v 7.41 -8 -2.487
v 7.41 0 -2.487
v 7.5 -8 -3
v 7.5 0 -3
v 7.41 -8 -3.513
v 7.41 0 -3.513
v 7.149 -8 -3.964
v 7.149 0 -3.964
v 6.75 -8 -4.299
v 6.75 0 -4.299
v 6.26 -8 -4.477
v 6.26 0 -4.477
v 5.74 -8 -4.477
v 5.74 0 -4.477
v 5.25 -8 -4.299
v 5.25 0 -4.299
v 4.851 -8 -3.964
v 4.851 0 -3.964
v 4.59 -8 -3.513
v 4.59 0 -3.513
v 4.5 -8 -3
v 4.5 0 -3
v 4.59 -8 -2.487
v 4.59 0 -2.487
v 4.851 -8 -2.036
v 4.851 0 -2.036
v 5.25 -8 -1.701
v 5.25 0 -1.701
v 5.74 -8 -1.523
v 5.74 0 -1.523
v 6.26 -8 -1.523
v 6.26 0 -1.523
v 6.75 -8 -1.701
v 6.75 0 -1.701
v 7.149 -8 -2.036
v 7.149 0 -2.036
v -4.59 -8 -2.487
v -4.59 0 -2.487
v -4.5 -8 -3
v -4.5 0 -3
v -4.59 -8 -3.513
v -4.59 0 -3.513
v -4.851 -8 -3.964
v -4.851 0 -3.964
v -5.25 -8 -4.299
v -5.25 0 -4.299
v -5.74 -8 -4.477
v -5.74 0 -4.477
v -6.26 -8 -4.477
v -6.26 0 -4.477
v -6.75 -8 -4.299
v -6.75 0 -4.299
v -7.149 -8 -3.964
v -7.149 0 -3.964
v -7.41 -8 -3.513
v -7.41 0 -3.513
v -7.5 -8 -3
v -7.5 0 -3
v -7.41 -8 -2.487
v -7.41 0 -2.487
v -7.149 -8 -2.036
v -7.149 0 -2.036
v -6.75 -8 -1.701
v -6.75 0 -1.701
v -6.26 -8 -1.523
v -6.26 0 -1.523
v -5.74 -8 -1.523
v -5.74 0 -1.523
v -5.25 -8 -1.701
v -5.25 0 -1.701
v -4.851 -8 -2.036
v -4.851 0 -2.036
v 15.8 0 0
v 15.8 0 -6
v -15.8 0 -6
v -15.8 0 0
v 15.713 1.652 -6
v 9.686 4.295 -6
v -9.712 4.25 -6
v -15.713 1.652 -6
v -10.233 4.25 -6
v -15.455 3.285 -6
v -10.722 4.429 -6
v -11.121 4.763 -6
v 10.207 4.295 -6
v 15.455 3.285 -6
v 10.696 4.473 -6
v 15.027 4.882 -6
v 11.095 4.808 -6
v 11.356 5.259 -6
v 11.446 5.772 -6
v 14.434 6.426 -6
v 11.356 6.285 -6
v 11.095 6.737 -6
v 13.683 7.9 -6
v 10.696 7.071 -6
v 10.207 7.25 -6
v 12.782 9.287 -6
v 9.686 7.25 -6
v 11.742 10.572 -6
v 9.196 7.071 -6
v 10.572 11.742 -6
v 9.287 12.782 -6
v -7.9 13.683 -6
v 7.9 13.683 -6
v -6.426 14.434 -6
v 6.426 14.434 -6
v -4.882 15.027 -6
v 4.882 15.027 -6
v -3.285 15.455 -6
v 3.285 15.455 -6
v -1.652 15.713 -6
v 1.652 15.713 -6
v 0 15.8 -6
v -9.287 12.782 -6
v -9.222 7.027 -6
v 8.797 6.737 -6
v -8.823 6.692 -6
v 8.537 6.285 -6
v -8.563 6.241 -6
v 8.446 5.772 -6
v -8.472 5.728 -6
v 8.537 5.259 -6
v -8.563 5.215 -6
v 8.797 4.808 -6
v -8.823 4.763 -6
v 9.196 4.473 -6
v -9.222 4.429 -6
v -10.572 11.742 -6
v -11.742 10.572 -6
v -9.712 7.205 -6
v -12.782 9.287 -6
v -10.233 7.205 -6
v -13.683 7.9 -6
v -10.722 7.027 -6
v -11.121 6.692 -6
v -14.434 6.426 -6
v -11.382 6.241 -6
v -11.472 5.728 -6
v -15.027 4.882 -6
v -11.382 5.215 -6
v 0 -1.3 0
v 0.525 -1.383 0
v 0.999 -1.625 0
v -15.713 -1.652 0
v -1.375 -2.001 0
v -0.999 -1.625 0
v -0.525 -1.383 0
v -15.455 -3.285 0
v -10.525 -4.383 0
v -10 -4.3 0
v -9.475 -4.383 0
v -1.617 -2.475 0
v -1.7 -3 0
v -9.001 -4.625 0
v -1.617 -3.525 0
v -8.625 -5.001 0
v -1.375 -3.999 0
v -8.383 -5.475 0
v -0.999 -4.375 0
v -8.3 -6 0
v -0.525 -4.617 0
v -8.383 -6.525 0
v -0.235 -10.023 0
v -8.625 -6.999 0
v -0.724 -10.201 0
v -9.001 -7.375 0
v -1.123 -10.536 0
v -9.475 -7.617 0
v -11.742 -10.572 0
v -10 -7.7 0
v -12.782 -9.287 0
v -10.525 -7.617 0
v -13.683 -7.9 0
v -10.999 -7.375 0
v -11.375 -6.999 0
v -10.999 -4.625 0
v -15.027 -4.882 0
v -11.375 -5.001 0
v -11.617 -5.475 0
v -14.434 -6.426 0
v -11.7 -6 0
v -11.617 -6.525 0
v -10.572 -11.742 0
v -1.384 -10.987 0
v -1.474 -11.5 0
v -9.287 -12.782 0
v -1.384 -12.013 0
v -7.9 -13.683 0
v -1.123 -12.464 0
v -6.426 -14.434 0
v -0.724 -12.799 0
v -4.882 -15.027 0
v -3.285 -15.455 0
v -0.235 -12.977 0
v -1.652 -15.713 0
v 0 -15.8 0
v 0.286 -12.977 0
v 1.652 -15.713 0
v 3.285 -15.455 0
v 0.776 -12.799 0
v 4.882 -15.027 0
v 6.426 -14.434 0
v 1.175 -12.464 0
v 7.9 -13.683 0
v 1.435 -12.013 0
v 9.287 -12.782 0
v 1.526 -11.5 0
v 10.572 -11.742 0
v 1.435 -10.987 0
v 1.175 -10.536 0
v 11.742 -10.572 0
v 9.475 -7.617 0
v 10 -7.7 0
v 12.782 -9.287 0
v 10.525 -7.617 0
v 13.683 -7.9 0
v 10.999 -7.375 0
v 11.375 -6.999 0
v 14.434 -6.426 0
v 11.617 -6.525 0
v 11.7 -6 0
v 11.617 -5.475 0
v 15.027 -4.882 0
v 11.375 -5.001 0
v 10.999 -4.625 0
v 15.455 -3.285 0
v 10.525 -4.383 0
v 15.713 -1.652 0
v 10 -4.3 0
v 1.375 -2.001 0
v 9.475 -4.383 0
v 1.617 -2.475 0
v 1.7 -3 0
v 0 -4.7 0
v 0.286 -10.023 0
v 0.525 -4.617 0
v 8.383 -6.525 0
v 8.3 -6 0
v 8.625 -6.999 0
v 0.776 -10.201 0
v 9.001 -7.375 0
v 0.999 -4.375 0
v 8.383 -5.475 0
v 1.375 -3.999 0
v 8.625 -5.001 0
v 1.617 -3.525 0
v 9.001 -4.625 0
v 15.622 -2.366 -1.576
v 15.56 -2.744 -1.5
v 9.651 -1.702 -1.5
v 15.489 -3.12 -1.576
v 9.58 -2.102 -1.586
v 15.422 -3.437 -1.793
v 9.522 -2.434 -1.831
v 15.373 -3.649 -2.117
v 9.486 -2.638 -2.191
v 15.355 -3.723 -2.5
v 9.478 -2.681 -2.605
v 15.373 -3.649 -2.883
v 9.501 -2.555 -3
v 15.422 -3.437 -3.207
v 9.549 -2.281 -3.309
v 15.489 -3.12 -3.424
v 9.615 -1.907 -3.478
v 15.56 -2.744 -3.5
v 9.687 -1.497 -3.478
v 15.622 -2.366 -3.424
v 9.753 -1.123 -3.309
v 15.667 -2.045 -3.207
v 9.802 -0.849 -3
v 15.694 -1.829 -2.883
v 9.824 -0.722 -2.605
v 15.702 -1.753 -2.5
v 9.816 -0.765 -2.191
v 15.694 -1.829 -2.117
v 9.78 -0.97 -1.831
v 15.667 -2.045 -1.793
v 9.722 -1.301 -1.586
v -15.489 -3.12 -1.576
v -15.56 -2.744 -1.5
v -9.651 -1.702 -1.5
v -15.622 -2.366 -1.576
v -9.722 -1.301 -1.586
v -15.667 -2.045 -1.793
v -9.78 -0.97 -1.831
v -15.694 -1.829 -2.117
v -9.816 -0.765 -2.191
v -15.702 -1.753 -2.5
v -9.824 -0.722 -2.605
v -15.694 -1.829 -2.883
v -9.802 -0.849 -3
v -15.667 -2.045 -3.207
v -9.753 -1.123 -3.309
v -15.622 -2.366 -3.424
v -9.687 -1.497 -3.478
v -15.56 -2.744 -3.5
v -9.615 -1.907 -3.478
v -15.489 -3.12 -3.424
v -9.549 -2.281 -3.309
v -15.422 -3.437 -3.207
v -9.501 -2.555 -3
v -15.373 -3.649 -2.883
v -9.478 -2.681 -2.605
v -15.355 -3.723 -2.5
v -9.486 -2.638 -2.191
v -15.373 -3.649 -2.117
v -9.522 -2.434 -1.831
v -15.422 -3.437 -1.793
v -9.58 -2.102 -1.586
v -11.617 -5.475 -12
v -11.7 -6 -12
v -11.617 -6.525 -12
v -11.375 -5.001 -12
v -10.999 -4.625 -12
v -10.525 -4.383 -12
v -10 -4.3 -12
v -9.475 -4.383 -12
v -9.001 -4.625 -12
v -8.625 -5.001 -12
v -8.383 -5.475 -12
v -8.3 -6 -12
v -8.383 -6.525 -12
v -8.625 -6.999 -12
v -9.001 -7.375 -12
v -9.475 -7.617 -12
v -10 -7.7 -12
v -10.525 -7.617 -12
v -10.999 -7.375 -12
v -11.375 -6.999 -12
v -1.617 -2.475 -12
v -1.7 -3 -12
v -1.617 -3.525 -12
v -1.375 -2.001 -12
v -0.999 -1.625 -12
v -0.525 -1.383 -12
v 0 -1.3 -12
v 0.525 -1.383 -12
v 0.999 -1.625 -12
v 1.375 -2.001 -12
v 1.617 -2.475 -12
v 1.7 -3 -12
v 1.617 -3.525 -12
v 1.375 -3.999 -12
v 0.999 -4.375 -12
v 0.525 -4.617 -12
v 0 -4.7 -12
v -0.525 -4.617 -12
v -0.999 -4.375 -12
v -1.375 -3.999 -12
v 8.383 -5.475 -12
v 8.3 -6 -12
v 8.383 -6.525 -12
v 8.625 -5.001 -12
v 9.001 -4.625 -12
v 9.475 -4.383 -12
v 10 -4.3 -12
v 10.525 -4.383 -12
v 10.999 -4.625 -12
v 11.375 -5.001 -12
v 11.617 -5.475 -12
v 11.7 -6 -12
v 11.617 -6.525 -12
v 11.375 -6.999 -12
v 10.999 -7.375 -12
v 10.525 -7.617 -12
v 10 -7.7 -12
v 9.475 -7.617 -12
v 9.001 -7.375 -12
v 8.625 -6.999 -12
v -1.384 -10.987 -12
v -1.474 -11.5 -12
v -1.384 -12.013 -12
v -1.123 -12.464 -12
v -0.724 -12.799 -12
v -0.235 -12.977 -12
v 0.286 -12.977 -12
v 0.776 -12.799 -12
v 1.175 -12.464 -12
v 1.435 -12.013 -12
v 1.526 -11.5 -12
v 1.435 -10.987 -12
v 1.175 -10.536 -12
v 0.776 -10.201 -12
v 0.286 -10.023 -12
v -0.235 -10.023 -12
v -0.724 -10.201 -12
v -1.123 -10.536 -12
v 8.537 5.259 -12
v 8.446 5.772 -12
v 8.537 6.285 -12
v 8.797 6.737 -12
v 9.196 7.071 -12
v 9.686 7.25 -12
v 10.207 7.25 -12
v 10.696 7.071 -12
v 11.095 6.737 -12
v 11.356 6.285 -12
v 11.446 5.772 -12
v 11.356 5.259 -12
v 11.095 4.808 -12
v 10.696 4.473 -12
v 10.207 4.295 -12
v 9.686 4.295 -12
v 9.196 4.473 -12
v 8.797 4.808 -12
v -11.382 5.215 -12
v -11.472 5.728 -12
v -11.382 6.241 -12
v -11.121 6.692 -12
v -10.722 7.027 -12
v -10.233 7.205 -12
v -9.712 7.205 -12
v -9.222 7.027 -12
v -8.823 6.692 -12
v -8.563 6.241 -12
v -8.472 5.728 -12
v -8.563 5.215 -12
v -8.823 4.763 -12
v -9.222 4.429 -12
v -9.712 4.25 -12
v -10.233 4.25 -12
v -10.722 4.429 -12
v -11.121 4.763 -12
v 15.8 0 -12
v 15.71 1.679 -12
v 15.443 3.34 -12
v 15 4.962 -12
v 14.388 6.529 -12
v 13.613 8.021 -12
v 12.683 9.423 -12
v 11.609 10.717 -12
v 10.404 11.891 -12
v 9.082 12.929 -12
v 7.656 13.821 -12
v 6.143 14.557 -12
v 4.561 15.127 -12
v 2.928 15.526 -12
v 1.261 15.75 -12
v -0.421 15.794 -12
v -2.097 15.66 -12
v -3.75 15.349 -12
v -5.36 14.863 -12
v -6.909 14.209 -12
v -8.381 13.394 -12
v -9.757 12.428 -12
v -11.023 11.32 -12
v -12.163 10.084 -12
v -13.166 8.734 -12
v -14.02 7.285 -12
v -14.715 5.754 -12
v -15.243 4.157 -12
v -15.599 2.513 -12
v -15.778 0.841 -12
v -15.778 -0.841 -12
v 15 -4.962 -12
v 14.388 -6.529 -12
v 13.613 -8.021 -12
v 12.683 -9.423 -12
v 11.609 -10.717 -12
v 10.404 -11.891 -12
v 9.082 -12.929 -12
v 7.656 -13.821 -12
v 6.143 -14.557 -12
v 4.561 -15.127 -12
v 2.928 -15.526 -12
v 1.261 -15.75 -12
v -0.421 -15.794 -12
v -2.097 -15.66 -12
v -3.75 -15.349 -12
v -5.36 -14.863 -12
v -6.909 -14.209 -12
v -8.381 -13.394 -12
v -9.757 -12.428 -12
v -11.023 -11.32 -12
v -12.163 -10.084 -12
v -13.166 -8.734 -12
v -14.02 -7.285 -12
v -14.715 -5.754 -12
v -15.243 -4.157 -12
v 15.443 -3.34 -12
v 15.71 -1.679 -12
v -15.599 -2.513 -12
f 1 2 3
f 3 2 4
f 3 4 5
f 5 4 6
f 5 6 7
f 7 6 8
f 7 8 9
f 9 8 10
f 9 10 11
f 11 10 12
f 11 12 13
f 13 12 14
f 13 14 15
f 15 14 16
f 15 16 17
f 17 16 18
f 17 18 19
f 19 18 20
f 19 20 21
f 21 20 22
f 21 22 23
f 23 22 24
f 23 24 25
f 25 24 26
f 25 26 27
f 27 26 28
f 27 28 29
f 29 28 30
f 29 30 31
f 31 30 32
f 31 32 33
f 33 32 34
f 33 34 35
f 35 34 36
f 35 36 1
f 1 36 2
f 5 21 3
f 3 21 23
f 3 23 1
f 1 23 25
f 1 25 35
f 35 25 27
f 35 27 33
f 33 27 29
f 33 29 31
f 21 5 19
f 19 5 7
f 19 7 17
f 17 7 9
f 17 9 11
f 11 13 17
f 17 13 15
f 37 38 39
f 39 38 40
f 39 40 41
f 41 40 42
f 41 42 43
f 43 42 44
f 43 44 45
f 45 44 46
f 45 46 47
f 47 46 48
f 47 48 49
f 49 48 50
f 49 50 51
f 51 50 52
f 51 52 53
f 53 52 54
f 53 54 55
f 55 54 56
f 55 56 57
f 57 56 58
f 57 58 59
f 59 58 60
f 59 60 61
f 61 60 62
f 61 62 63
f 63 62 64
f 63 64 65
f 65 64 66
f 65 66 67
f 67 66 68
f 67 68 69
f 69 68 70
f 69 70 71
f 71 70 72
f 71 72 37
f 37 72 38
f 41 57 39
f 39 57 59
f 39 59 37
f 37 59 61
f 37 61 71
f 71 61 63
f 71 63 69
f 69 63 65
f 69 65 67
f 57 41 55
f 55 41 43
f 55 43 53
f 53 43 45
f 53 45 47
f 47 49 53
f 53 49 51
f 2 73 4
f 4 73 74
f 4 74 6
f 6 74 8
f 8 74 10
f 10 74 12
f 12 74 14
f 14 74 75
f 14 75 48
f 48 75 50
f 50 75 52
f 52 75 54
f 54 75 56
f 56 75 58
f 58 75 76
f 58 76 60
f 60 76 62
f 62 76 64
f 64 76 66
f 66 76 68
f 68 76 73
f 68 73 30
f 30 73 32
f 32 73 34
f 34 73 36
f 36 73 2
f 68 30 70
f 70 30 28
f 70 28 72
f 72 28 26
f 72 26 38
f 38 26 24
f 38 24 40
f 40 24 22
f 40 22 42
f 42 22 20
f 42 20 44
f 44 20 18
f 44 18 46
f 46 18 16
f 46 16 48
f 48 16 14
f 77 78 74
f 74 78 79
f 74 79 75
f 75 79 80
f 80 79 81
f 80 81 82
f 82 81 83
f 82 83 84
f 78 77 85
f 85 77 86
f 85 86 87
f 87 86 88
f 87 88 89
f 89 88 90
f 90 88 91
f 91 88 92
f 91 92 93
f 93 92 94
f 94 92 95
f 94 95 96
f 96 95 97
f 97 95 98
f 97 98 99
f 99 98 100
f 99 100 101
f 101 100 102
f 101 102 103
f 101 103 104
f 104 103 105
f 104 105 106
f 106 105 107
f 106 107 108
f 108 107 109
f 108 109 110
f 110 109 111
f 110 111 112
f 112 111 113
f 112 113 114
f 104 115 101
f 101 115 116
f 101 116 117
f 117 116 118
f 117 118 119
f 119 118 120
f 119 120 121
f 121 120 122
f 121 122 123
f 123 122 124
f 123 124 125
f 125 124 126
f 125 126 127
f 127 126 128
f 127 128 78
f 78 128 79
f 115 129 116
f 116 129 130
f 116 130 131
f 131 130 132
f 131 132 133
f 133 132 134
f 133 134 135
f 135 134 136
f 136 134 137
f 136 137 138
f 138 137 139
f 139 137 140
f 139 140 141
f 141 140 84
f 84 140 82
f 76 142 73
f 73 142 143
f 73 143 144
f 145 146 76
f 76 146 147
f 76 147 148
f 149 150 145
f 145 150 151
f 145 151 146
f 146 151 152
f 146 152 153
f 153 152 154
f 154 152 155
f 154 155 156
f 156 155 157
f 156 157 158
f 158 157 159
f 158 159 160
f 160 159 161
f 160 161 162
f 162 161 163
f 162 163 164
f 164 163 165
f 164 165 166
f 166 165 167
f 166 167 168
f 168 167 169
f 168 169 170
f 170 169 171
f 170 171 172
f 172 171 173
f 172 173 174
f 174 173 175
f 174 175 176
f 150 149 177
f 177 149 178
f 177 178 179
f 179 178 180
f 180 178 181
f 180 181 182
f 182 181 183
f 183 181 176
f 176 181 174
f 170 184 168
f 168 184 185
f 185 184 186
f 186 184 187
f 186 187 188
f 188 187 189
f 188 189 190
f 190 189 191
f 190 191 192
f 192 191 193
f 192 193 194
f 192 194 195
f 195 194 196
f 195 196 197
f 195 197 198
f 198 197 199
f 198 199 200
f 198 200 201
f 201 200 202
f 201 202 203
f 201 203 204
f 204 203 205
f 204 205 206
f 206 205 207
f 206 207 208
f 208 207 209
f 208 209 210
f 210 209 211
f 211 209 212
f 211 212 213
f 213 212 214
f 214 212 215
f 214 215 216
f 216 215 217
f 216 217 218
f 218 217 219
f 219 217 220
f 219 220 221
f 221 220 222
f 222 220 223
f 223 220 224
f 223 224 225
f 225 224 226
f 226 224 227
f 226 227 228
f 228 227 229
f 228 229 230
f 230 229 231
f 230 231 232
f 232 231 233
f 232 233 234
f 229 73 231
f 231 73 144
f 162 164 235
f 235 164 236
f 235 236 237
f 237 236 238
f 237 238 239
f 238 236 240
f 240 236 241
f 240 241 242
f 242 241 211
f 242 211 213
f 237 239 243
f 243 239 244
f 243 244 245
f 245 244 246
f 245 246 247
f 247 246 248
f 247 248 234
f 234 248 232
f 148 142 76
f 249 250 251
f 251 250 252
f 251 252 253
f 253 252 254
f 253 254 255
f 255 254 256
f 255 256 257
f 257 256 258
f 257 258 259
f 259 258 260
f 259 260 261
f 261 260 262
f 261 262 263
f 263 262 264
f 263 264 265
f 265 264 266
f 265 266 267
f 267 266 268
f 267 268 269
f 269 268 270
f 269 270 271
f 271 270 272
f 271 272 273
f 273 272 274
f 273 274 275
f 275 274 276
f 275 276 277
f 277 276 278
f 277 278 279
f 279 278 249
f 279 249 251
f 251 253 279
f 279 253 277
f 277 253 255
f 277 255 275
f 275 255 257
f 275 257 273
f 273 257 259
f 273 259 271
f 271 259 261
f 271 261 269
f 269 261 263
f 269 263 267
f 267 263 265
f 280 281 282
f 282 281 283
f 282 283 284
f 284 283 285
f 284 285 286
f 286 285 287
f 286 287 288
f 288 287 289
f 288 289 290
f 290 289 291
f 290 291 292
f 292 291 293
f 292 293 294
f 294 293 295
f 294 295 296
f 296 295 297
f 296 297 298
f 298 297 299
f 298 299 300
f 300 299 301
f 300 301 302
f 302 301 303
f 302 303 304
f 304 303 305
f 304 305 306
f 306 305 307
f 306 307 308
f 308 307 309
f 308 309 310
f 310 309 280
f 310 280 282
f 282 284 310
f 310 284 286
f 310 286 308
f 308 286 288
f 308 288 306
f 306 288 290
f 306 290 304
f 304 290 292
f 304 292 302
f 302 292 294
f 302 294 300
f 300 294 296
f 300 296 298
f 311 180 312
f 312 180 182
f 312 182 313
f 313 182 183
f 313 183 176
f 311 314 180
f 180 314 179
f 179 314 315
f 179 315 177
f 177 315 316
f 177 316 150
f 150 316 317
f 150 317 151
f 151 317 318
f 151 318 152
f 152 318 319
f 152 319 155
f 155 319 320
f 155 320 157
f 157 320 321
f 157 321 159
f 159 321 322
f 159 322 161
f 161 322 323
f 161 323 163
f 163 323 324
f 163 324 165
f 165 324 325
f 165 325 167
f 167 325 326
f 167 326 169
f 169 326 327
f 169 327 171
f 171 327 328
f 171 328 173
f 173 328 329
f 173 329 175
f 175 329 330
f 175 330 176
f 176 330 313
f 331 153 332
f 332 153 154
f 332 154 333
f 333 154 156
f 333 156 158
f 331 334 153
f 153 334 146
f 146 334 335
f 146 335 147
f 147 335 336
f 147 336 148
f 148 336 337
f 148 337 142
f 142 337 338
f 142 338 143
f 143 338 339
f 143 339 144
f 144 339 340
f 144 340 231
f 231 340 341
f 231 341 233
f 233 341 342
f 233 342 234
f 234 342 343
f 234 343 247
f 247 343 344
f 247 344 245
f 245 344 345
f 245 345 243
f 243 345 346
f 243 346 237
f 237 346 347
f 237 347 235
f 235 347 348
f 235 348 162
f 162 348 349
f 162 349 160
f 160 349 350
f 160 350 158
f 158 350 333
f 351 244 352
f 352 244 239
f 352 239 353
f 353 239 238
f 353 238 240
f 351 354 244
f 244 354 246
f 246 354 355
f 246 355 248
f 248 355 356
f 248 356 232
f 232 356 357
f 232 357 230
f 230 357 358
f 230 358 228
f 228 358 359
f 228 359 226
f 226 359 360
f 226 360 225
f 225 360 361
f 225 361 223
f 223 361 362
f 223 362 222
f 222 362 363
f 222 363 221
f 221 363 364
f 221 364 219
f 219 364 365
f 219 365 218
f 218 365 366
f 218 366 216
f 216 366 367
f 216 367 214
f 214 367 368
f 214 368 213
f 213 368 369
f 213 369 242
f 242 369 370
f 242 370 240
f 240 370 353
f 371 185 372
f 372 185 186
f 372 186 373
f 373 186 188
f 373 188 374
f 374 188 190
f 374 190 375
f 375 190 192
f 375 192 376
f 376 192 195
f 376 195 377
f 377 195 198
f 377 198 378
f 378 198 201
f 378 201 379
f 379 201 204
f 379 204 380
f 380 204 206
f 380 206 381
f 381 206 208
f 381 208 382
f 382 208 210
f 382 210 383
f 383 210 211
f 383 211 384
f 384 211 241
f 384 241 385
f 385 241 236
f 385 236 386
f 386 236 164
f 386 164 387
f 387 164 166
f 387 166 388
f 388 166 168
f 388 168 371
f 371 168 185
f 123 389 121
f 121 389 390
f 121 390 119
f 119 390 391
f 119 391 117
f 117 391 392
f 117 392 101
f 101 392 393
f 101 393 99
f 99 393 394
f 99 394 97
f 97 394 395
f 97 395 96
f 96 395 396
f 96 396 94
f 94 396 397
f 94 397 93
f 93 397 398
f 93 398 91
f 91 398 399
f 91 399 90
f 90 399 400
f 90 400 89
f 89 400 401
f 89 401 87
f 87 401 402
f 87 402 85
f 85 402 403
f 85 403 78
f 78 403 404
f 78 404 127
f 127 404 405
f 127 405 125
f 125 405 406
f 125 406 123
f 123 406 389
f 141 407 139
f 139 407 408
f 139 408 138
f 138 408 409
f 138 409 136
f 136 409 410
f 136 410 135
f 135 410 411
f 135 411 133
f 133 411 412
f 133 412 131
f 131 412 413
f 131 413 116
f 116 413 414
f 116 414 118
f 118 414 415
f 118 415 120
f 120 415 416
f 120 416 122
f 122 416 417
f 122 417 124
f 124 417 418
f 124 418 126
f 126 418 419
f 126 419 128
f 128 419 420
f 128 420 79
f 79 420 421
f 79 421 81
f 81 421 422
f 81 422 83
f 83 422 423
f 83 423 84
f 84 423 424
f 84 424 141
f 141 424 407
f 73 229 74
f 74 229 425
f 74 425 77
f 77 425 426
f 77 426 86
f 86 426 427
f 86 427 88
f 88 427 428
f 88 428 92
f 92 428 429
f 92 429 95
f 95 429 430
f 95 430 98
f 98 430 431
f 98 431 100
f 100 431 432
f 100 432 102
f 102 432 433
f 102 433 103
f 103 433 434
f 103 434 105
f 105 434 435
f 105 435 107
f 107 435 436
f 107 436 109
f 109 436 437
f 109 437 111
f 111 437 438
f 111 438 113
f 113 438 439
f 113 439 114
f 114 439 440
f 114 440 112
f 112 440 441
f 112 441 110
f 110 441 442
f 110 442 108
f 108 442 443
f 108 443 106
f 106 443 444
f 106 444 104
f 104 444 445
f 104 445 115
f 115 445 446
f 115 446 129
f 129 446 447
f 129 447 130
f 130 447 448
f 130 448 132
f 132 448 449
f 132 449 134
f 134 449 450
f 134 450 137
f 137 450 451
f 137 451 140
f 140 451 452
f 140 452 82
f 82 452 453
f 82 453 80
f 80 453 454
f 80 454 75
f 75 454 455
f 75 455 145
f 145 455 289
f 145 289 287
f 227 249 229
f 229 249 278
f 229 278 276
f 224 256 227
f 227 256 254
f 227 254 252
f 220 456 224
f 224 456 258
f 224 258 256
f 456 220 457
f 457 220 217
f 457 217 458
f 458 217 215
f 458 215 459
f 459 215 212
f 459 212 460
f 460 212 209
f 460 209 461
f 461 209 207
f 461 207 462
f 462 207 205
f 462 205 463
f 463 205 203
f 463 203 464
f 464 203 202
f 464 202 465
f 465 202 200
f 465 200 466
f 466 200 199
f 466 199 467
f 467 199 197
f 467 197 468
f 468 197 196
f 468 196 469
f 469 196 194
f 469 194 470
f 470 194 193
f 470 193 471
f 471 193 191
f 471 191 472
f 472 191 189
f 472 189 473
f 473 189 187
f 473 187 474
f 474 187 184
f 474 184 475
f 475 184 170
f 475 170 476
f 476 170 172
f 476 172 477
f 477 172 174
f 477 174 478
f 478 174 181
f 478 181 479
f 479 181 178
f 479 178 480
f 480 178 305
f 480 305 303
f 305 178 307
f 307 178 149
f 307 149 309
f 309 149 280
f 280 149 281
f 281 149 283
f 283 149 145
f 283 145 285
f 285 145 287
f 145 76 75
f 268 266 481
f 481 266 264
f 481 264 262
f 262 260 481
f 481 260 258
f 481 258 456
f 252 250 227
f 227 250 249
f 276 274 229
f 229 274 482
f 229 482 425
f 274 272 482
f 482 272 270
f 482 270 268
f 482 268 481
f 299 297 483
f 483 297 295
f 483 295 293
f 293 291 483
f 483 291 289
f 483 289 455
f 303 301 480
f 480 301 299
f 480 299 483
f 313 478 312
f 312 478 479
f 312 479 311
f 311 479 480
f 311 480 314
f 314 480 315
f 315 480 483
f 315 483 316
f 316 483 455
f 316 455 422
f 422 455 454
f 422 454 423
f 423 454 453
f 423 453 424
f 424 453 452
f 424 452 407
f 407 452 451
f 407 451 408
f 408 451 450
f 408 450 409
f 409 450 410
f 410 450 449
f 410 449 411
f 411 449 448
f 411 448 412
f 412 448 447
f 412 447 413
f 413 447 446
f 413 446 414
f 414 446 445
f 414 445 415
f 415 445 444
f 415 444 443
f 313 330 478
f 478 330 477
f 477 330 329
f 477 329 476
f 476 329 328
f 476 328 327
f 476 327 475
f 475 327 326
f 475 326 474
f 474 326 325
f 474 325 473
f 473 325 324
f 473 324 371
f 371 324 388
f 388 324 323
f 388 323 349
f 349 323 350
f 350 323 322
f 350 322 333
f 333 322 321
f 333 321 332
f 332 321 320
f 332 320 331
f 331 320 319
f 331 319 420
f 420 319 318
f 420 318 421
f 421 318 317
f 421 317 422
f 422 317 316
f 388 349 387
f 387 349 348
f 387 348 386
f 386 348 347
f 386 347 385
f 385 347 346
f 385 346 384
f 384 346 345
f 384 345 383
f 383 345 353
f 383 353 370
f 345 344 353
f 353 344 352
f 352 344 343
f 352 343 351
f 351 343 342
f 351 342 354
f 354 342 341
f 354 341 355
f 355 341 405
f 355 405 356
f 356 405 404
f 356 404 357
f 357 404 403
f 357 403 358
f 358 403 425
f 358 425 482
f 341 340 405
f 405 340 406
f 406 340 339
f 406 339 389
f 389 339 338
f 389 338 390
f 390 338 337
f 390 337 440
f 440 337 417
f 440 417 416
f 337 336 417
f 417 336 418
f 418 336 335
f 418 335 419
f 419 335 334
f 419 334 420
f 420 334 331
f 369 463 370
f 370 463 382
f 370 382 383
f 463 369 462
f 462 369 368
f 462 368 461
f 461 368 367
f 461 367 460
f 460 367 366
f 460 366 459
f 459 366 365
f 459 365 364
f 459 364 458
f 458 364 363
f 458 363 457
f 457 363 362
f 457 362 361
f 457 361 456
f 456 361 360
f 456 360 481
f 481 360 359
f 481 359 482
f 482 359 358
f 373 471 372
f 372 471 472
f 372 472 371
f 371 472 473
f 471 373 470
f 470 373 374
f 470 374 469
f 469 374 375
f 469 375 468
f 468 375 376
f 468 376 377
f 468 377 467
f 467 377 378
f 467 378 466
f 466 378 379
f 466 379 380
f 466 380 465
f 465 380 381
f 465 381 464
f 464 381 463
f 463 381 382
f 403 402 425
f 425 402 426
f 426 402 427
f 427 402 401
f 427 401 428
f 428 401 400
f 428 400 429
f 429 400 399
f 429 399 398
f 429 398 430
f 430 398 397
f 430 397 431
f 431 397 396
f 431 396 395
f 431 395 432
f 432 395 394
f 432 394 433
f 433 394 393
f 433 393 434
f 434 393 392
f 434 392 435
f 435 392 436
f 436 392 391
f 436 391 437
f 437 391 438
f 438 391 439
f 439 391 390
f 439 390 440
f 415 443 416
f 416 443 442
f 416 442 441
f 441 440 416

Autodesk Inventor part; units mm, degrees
ref_plane "XZ Plane" through (0, 0, 0) normal (0, 1, 0) x (-1, 0, 0)
sketch "スケッチ2" plane through (0, 0, 0) normal (0, 0, 1) x (1, 0, 0)
  circle A0 centre (0, 0) radius 15.8
  dimension "d0" = 31.6
extrude "押し出し1" add sketch "スケッチ2" against normal blind 12
sketch "スケッチ4" plane through (0, 0, 0) normal (0, 0, 1) x (1, 0, 0)
  circle A0 centre (0.0258, -11.5) radius 1.5
  circle A1 centre (9.9464, 5.7723) radius 1.5
  circle A2 centre (-9.9722, 5.7277) radius 1.5
  point P0 (0, 0)
  dimension "d8" = 3
  dimension "d9" = 11.5
  dimension "d12" = 360
extrude "押し出し3" cut sketch "スケッチ4" against normal through all
sketch "スケッチ13" plane through (0, 0, 0) normal (0, 0, 1) x (1, 0, 0)
  circle A0 centre (-10, -6) radius 1.7
  circle A1 centre (10, -6) radius 1.7
  circle A2 centre (0, -3) radius 1.7
  line L0 (0, 0) -> (0, -19.4065)
  line L1 (0, 0) -> (20.4623, 0)
  point P0 (0, -4.7)
  point P1 (0, -1.3)
  dimension "d125" = 3.4
  dimension "d126" = 3.4
  dimension "d127" = 3.4
  dimension "d128" = 6
  dimension "d129" = 3
  dimension "d130" = 10
extrude "押し出し11" cut sketch "スケッチ13" against normal through all
ref_plane "作業平面6" through (0, 0, 0) normal (0.9848, -0.1736, 0) x (0, 0, 1)
ref_plane "作業平面7" through (0, 0, 0) normal (0.9848, 0.1736, 0) x (0, 0, 1)
ref_plane "作業平面8" through (15.56, -2.7436, 0) normal (0.9848, -0.1736, 0) x (0, 0, 1)
ref_plane "作業平面9" through (-15.56, -2.7436, 0) normal (0.9848, 0.1736, 0) x (0, 0, 1)
sketch "スケッチ15" plane through (15.56, -2.7436, 0) normal (0.9848, -0.1736, 0) x (0, 0, 1)
  circle A0 centre (-2.5, 0) radius 1
  point P0 (0, 0)
  dimension "d103" = 2
  dimension "d104" = 2.5
sketch "スケッチ16" plane through (-15.56, -2.7436, 0) normal (0.9848, 0.1736, 0) x (0, 0, 1)
  circle A0 centre (-2.5, 0) radius 1
  point P0 (0, 0)
  dimension "d105" = 2
  dimension "d106" = 2.5
extrude "押し出し12" cut sketch "スケッチ16" along normal blind 6
extrude "押し出し13" cut sketch "スケッチ15" against normal blind 6
thread "ねじ10" size "M2x0.4" class "6H" standard "ANSI Metric M Profile" full length
thread "ねじ11" size "M2x0.4" class "6H" standard "ANSI Metric M Profile" full length
sketch "スケッチ18" plane through (0, 0, 0) normal (0, 0, 1) x (1, 0, 0)
  line L0 (-18.9802, 17.2113) -> (19.0758, 17.2113)
  line L1 (19.0758, 17.2113) -> (19.0758, 0)
  line L2 (19.0758, 0) -> (-18.9802, 0)
  line L3 (-18.9802, 0) -> (-18.9802, 17.2113)
  point P0 (0, 0)
  point P1 (0.0478, 0)
  dimension "d141" = 0
extrude "押し出し15" cut sketch "スケッチ18" against normal blind 6
sketch "スケッチ20" plane through (-15.8, 0, 0) normal (0, 1, 0) x (1, 0, 0)
  line L0 (15.8, 0) -> (15.8, 8.7821) construction
  line L1 (0, 0) -> (0, 6) projected
  line L2 (0, 3) -> (33.9854, 3) construction
  circle A0 centre (9.8, 3) radius 1.5
  circle A1 centre (21.8, 3) radius 1.5
  line L3 (31.6, 0) -> (0, 0) projected
  dimension "d132" = 3
  dimension "d133" = 3
  dimension "d134" = 6
extrude "押し出し16" cut sketch "スケッチ20" against normal blind 8
thread "ねじ13" size "M3x0.5" class "6H" standard "ANSI Metric M Profile" full length
thread "ねじ14" size "M3x0.5" class "6H" standard "ANSI Metric M Profile" full length
thread "ねじ15" size "M3x0.5" class "6H" standard "ANSI Metric M Profile" full length
thread "ねじ16" size "M3x0.5" class "6H" standard "ANSI Metric M Profile" full length
thread "ねじ17" size "M3x0.5" class "6H" standard "ANSI Metric M Profile" full length
properties part number "B_probehead_5_1" material "ステンレス鋼 440C"
